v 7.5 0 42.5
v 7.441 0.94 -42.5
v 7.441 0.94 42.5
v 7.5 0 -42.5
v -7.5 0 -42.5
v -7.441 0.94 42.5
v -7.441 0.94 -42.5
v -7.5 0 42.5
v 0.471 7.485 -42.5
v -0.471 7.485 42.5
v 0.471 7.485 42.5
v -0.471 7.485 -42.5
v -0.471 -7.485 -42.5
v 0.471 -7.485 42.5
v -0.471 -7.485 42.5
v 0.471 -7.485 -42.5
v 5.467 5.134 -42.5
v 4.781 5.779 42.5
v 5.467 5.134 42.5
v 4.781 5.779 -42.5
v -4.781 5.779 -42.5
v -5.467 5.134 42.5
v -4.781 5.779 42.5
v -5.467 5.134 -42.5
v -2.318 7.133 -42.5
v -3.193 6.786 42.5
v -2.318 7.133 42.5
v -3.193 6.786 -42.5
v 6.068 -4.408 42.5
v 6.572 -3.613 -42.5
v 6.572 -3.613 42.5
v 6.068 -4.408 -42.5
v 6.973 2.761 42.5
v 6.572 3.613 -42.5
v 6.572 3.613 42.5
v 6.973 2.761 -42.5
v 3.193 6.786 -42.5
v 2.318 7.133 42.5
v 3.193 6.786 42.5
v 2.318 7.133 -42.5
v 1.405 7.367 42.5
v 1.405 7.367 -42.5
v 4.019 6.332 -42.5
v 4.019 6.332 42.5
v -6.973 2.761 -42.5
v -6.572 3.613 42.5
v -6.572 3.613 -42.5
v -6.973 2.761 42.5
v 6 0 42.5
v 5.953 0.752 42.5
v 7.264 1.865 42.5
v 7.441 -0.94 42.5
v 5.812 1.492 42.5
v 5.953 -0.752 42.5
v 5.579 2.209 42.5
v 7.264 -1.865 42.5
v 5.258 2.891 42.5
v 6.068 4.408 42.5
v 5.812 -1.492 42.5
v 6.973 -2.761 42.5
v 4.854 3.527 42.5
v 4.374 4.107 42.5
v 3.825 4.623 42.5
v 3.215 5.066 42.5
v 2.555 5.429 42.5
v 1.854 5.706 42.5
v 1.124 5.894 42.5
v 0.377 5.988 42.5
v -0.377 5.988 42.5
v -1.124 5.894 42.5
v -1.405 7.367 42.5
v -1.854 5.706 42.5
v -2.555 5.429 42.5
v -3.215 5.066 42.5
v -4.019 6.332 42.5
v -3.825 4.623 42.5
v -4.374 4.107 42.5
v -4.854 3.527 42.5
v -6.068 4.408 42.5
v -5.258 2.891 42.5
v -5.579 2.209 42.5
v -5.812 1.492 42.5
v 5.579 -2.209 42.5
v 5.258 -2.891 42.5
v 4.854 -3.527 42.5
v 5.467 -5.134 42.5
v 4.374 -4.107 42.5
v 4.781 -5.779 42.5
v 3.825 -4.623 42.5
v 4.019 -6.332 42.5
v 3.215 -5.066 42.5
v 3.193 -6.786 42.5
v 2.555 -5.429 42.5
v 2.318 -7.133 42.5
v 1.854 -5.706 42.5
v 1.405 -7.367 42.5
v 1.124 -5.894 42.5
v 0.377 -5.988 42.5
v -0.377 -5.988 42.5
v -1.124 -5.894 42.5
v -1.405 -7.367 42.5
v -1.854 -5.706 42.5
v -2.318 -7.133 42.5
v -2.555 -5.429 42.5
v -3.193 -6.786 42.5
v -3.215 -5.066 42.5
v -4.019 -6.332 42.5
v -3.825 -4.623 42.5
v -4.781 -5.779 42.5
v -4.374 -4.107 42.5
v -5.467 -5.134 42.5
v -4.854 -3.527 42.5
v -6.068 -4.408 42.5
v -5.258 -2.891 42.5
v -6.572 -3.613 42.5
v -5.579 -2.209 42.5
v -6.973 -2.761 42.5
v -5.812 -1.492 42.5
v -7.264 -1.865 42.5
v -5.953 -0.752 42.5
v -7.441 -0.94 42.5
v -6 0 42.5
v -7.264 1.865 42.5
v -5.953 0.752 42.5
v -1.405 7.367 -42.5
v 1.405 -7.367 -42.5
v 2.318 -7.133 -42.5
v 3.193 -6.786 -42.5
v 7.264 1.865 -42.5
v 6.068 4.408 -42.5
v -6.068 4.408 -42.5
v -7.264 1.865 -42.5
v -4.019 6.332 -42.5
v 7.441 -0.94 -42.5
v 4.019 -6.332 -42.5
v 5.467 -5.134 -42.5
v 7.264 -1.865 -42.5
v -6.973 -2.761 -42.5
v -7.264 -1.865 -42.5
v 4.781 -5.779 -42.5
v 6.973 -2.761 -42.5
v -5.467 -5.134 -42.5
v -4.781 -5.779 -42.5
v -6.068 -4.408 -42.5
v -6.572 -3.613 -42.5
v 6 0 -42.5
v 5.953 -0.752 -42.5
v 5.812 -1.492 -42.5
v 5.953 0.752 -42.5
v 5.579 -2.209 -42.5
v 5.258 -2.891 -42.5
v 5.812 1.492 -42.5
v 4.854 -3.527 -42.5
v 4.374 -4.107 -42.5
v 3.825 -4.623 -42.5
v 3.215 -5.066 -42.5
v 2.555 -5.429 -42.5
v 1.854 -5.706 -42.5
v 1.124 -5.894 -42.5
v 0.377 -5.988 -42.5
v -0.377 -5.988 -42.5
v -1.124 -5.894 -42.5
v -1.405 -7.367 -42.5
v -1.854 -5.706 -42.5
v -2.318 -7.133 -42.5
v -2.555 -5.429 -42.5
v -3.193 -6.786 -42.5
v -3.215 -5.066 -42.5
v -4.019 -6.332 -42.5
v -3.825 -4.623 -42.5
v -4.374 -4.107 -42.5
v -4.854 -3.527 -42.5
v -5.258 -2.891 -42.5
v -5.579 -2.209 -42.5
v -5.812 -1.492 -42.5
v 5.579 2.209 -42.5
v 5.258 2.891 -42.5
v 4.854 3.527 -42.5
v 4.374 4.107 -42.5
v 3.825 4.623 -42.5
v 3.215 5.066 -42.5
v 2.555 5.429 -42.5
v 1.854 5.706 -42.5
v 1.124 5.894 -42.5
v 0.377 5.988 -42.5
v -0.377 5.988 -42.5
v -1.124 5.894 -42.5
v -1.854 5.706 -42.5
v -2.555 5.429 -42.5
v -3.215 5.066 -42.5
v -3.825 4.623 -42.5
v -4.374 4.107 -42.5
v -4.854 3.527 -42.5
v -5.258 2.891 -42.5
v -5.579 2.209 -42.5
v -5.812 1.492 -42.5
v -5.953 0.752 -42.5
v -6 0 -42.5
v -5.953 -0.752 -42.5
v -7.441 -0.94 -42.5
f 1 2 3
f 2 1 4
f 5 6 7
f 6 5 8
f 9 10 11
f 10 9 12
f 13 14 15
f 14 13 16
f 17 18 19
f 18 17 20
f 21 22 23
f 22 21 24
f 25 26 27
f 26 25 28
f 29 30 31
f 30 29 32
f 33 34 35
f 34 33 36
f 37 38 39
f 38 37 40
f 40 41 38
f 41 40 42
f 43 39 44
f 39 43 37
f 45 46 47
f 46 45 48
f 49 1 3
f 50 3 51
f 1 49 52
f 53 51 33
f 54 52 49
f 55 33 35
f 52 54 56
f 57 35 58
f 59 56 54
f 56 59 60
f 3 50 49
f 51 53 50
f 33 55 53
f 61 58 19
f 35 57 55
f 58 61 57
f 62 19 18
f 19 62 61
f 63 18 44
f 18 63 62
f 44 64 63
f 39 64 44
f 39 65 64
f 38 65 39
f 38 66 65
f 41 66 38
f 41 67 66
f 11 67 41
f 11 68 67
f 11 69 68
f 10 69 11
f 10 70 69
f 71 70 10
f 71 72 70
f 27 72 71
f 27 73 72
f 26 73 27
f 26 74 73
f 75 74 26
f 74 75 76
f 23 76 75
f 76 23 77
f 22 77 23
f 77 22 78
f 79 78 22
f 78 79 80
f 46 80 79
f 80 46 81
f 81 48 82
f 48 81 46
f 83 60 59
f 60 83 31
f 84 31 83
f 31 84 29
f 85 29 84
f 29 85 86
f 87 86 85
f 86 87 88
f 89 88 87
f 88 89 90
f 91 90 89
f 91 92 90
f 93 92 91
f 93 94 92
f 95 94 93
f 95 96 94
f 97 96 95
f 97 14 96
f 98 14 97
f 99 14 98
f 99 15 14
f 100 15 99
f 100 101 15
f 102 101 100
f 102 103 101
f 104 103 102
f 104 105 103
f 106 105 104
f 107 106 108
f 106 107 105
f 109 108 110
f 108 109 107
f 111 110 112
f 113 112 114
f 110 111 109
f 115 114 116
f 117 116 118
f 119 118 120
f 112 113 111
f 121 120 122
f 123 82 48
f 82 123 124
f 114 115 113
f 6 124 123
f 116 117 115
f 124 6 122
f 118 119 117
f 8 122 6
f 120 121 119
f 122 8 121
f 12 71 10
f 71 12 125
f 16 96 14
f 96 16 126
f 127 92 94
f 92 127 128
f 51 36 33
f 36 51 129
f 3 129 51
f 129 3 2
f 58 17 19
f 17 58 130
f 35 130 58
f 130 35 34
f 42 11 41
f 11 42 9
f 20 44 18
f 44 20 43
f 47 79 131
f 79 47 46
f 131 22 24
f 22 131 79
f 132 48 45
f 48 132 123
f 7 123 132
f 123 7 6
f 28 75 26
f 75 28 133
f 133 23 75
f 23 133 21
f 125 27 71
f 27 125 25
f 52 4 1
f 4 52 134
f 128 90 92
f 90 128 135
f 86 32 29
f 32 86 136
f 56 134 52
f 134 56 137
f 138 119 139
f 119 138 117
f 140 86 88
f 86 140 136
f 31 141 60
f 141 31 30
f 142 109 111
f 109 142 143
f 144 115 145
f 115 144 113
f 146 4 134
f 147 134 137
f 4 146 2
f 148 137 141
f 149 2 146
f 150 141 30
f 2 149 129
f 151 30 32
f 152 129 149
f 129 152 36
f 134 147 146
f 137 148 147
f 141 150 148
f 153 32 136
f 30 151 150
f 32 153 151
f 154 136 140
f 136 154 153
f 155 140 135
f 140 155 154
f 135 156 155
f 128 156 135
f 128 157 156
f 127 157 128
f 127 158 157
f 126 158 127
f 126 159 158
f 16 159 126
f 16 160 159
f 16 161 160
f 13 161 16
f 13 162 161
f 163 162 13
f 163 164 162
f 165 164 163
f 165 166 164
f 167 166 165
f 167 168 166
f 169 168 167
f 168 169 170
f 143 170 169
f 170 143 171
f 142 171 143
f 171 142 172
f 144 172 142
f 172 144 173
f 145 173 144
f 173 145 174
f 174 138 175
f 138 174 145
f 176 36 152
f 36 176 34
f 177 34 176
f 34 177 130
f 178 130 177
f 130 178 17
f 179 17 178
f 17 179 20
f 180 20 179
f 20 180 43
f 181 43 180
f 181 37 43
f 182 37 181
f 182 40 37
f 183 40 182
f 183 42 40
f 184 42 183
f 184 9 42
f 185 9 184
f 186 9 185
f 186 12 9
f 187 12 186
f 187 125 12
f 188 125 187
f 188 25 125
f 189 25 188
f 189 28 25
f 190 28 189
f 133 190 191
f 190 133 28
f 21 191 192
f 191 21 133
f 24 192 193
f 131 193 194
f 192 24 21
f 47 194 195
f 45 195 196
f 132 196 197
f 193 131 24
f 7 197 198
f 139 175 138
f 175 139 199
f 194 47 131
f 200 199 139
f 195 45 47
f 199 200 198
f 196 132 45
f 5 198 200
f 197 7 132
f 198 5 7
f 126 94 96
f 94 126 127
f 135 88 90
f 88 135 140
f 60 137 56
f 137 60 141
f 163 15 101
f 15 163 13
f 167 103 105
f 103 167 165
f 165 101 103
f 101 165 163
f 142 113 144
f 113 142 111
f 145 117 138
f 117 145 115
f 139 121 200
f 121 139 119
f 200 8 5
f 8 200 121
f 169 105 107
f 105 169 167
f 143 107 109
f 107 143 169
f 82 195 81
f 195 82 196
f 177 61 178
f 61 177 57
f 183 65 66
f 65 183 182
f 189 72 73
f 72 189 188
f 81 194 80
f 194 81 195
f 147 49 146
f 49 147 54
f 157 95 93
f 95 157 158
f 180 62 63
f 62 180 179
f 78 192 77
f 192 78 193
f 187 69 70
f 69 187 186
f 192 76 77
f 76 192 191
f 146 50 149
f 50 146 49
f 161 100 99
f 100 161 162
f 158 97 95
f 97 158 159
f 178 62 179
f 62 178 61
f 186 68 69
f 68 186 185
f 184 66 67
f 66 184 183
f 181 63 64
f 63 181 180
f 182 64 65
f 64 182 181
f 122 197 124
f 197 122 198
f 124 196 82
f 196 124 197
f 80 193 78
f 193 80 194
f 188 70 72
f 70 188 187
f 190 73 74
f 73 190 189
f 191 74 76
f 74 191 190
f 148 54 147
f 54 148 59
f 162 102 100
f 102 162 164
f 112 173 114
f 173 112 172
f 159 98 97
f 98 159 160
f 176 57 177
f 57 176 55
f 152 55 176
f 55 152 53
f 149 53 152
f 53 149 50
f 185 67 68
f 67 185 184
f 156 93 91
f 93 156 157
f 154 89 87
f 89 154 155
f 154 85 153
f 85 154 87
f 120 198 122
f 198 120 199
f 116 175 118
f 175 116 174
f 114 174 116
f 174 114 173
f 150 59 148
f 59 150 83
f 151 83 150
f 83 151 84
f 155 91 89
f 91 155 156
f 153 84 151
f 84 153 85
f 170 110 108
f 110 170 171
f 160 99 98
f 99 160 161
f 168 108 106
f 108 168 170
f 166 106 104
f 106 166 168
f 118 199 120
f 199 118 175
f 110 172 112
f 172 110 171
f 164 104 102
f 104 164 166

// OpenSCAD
$fn = 50;


difference() {
	union() {
		translate(v = [0, 0, -42.5000000000]) {
			cylinder(h = 85, r = 7.5000000000);
		}
	}
	union() {
		translate(v = [0, 0, -100.0000000000]) {
			cylinder(h = 200, r = 6);
		}
	}
}
